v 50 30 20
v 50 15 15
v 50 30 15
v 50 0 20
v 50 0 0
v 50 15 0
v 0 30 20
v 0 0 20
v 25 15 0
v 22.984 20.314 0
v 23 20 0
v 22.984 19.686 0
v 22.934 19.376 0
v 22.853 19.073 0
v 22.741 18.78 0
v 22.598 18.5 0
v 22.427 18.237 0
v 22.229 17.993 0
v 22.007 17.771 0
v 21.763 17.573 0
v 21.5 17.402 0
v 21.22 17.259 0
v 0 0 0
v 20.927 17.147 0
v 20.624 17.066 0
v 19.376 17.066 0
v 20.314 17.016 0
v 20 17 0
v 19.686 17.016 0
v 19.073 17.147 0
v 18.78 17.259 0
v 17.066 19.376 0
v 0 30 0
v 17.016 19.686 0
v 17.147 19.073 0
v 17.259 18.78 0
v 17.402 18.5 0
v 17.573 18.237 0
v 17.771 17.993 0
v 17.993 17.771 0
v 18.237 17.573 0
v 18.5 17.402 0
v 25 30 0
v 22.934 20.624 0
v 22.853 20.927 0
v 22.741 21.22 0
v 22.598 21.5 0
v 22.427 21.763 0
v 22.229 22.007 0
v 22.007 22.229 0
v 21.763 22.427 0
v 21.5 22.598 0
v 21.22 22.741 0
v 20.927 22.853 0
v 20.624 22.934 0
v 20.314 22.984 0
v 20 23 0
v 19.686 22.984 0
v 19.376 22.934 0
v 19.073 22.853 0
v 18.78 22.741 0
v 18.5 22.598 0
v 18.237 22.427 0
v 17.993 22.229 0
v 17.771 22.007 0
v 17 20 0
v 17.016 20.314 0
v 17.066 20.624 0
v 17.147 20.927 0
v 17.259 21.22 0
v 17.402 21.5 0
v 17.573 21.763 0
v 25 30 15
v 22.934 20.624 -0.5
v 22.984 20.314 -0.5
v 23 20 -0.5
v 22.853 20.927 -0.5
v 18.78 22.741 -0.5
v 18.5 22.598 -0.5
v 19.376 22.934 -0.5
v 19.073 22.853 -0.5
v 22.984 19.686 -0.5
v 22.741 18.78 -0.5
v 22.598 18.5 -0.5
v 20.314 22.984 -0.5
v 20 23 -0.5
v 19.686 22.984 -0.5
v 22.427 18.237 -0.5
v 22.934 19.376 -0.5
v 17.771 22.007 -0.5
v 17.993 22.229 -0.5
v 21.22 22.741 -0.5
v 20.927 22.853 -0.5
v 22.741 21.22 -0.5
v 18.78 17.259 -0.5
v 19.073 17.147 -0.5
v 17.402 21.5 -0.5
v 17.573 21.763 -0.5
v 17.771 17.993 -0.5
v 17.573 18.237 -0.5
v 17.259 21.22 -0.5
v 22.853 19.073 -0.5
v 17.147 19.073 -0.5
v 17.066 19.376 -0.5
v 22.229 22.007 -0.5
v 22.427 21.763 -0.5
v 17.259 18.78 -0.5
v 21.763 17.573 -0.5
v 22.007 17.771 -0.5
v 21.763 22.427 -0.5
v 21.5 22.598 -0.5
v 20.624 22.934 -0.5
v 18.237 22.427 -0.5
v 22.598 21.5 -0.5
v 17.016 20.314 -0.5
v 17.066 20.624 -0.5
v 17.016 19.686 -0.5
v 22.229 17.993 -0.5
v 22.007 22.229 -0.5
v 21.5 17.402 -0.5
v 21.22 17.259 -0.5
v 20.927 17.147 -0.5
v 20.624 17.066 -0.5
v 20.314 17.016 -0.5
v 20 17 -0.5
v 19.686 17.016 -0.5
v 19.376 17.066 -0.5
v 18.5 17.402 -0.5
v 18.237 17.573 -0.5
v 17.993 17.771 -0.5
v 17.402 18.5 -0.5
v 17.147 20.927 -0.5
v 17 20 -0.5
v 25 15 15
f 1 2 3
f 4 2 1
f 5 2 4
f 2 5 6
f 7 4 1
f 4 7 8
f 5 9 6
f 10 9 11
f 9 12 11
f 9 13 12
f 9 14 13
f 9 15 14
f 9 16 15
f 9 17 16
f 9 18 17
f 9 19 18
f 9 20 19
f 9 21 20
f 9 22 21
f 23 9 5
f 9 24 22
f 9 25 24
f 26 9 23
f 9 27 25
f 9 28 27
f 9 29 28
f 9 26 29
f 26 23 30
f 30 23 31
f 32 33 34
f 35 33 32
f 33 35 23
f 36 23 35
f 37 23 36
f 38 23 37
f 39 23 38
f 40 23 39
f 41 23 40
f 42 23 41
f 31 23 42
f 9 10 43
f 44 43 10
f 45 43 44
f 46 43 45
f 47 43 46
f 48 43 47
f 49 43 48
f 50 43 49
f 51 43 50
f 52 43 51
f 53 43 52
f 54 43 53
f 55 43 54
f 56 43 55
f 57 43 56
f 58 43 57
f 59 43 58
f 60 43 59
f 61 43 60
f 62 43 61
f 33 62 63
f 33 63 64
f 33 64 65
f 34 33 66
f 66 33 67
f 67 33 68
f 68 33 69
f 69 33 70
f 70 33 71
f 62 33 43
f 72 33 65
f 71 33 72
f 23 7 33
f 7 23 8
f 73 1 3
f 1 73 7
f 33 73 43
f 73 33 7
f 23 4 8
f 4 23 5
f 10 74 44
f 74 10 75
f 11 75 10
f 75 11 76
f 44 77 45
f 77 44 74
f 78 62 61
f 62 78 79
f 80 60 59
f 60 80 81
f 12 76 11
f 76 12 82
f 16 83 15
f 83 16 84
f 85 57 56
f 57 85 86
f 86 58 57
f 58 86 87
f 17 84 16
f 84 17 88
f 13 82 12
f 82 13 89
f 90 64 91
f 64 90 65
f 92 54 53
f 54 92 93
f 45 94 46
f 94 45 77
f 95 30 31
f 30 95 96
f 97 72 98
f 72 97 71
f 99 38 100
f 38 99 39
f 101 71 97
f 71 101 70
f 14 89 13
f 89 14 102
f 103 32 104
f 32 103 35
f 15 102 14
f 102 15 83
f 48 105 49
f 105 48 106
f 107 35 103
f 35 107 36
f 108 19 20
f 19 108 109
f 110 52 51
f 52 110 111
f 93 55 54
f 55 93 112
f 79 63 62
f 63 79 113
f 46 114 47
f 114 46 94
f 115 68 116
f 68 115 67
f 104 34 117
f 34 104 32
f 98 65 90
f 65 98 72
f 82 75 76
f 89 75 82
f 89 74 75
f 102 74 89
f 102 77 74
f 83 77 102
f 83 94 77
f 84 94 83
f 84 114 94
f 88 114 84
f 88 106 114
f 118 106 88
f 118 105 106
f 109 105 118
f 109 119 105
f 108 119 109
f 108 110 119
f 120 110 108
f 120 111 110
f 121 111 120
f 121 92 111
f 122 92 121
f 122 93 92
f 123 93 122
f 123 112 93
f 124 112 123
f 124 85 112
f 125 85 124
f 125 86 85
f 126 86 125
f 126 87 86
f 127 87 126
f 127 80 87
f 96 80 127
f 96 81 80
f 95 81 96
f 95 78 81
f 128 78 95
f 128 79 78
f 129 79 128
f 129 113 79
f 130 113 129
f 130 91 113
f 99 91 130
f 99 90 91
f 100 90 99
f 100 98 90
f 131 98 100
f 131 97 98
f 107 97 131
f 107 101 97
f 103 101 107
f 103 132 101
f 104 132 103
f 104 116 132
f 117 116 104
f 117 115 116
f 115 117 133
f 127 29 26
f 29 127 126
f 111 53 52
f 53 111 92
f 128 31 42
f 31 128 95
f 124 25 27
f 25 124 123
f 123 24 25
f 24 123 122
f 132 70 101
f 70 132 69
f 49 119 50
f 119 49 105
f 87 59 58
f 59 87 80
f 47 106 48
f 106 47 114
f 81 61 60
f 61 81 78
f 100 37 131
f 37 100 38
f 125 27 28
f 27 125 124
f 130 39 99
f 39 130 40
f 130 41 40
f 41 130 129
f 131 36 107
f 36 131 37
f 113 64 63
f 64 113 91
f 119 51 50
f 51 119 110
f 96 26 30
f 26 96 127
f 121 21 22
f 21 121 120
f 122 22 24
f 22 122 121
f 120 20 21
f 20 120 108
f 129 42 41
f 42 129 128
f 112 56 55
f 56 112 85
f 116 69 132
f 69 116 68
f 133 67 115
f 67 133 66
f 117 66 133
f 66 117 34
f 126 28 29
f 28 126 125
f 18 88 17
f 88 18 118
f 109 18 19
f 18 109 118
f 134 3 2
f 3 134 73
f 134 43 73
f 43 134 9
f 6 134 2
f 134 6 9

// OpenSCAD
// Pivot Mount Parameters
pivot_hole_diameter = 6;
pivot_hole_offset_x = 20;
pivot_hole_offset_y = 20;
base_width = 50;
base_height = 30;
base_depth = 20;
arm_width = 15;
arm_height = 25;
arm_depth = 10;
hole_diameter = 3;

module pivot_hole(diameter, offset_x, offset_y) {
  cylinder(h=1, r=diameter/2, center=true, $fn=60);
}

difference() {
  union() {
    // Base
    cube([base_width, base_height, base_depth]);

    // Pivot Hole
    translate([pivot_hole_offset_x, pivot_hole_offset_y, 0]) {
      pivot_hole(pivot_hole_diameter, 0, 0);
    }

    // Arm
    translate([base_width/2 - arm_width/2, base_height/2 - arm_height/2, 0]) {
      cube([arm_width, arm_height, arm_depth]);
    }
  }

  // Clearance for mounting (simplified)
  translate([base_width/2, base_height/2, 0]) {
      cube([base_width - base_width/4, base_height - base_height/4, base_depth - base_depth/4]);
  }
}
